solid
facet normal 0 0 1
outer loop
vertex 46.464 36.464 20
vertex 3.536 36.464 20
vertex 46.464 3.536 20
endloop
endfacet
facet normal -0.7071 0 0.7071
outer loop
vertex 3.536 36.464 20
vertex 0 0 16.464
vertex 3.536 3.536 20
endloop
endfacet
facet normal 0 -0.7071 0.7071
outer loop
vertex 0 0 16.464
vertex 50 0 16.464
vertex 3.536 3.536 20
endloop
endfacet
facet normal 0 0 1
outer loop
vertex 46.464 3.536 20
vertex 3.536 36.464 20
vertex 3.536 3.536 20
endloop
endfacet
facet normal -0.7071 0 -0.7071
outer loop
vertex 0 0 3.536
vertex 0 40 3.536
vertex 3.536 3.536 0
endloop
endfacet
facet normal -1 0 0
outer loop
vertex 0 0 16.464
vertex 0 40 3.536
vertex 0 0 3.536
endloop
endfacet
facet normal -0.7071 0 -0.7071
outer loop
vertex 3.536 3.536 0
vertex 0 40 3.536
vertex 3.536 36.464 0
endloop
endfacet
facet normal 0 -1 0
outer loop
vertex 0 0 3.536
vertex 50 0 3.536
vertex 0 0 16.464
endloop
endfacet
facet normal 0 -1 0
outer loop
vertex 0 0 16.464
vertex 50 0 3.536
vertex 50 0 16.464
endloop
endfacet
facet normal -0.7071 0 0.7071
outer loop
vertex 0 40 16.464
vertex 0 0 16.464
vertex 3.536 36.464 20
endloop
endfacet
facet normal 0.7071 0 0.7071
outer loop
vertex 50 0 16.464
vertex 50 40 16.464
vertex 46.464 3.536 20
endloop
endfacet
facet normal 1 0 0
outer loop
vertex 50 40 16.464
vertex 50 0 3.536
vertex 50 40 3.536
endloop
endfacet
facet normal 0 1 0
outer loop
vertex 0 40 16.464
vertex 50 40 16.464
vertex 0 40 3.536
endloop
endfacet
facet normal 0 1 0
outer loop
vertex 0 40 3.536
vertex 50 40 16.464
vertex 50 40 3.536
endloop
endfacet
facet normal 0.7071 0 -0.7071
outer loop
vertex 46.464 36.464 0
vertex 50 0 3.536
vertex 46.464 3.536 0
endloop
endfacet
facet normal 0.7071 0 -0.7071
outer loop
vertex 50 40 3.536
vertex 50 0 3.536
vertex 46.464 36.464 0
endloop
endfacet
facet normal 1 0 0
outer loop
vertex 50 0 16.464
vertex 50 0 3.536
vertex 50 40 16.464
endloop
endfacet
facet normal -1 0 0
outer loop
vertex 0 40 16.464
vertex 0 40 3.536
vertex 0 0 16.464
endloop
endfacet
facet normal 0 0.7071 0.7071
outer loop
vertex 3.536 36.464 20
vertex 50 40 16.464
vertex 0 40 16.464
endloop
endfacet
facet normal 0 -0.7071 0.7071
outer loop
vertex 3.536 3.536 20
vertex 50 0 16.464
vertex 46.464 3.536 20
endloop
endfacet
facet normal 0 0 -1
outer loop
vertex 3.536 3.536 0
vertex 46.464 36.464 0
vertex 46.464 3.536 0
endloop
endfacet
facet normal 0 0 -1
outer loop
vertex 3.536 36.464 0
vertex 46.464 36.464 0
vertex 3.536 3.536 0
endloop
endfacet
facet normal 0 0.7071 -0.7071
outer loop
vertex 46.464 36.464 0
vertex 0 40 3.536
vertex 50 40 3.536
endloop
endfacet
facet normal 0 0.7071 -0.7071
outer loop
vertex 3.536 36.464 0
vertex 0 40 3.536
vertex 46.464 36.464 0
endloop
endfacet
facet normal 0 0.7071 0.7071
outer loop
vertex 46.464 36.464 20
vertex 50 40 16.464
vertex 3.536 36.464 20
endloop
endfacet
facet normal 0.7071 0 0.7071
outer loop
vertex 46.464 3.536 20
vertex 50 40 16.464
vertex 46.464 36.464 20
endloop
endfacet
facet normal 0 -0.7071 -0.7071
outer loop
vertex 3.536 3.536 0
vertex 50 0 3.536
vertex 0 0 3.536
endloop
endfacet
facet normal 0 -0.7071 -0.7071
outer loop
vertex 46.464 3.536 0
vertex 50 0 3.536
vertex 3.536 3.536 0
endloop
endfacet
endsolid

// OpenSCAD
$fn=96;
radius=5;
leg=radius/sqrt(2); hull(){translate([leg,leg,0]) cube([50-2*leg,40-2*leg,20]); translate([0,0,leg]) cube([50,40,20-2*leg]);}
